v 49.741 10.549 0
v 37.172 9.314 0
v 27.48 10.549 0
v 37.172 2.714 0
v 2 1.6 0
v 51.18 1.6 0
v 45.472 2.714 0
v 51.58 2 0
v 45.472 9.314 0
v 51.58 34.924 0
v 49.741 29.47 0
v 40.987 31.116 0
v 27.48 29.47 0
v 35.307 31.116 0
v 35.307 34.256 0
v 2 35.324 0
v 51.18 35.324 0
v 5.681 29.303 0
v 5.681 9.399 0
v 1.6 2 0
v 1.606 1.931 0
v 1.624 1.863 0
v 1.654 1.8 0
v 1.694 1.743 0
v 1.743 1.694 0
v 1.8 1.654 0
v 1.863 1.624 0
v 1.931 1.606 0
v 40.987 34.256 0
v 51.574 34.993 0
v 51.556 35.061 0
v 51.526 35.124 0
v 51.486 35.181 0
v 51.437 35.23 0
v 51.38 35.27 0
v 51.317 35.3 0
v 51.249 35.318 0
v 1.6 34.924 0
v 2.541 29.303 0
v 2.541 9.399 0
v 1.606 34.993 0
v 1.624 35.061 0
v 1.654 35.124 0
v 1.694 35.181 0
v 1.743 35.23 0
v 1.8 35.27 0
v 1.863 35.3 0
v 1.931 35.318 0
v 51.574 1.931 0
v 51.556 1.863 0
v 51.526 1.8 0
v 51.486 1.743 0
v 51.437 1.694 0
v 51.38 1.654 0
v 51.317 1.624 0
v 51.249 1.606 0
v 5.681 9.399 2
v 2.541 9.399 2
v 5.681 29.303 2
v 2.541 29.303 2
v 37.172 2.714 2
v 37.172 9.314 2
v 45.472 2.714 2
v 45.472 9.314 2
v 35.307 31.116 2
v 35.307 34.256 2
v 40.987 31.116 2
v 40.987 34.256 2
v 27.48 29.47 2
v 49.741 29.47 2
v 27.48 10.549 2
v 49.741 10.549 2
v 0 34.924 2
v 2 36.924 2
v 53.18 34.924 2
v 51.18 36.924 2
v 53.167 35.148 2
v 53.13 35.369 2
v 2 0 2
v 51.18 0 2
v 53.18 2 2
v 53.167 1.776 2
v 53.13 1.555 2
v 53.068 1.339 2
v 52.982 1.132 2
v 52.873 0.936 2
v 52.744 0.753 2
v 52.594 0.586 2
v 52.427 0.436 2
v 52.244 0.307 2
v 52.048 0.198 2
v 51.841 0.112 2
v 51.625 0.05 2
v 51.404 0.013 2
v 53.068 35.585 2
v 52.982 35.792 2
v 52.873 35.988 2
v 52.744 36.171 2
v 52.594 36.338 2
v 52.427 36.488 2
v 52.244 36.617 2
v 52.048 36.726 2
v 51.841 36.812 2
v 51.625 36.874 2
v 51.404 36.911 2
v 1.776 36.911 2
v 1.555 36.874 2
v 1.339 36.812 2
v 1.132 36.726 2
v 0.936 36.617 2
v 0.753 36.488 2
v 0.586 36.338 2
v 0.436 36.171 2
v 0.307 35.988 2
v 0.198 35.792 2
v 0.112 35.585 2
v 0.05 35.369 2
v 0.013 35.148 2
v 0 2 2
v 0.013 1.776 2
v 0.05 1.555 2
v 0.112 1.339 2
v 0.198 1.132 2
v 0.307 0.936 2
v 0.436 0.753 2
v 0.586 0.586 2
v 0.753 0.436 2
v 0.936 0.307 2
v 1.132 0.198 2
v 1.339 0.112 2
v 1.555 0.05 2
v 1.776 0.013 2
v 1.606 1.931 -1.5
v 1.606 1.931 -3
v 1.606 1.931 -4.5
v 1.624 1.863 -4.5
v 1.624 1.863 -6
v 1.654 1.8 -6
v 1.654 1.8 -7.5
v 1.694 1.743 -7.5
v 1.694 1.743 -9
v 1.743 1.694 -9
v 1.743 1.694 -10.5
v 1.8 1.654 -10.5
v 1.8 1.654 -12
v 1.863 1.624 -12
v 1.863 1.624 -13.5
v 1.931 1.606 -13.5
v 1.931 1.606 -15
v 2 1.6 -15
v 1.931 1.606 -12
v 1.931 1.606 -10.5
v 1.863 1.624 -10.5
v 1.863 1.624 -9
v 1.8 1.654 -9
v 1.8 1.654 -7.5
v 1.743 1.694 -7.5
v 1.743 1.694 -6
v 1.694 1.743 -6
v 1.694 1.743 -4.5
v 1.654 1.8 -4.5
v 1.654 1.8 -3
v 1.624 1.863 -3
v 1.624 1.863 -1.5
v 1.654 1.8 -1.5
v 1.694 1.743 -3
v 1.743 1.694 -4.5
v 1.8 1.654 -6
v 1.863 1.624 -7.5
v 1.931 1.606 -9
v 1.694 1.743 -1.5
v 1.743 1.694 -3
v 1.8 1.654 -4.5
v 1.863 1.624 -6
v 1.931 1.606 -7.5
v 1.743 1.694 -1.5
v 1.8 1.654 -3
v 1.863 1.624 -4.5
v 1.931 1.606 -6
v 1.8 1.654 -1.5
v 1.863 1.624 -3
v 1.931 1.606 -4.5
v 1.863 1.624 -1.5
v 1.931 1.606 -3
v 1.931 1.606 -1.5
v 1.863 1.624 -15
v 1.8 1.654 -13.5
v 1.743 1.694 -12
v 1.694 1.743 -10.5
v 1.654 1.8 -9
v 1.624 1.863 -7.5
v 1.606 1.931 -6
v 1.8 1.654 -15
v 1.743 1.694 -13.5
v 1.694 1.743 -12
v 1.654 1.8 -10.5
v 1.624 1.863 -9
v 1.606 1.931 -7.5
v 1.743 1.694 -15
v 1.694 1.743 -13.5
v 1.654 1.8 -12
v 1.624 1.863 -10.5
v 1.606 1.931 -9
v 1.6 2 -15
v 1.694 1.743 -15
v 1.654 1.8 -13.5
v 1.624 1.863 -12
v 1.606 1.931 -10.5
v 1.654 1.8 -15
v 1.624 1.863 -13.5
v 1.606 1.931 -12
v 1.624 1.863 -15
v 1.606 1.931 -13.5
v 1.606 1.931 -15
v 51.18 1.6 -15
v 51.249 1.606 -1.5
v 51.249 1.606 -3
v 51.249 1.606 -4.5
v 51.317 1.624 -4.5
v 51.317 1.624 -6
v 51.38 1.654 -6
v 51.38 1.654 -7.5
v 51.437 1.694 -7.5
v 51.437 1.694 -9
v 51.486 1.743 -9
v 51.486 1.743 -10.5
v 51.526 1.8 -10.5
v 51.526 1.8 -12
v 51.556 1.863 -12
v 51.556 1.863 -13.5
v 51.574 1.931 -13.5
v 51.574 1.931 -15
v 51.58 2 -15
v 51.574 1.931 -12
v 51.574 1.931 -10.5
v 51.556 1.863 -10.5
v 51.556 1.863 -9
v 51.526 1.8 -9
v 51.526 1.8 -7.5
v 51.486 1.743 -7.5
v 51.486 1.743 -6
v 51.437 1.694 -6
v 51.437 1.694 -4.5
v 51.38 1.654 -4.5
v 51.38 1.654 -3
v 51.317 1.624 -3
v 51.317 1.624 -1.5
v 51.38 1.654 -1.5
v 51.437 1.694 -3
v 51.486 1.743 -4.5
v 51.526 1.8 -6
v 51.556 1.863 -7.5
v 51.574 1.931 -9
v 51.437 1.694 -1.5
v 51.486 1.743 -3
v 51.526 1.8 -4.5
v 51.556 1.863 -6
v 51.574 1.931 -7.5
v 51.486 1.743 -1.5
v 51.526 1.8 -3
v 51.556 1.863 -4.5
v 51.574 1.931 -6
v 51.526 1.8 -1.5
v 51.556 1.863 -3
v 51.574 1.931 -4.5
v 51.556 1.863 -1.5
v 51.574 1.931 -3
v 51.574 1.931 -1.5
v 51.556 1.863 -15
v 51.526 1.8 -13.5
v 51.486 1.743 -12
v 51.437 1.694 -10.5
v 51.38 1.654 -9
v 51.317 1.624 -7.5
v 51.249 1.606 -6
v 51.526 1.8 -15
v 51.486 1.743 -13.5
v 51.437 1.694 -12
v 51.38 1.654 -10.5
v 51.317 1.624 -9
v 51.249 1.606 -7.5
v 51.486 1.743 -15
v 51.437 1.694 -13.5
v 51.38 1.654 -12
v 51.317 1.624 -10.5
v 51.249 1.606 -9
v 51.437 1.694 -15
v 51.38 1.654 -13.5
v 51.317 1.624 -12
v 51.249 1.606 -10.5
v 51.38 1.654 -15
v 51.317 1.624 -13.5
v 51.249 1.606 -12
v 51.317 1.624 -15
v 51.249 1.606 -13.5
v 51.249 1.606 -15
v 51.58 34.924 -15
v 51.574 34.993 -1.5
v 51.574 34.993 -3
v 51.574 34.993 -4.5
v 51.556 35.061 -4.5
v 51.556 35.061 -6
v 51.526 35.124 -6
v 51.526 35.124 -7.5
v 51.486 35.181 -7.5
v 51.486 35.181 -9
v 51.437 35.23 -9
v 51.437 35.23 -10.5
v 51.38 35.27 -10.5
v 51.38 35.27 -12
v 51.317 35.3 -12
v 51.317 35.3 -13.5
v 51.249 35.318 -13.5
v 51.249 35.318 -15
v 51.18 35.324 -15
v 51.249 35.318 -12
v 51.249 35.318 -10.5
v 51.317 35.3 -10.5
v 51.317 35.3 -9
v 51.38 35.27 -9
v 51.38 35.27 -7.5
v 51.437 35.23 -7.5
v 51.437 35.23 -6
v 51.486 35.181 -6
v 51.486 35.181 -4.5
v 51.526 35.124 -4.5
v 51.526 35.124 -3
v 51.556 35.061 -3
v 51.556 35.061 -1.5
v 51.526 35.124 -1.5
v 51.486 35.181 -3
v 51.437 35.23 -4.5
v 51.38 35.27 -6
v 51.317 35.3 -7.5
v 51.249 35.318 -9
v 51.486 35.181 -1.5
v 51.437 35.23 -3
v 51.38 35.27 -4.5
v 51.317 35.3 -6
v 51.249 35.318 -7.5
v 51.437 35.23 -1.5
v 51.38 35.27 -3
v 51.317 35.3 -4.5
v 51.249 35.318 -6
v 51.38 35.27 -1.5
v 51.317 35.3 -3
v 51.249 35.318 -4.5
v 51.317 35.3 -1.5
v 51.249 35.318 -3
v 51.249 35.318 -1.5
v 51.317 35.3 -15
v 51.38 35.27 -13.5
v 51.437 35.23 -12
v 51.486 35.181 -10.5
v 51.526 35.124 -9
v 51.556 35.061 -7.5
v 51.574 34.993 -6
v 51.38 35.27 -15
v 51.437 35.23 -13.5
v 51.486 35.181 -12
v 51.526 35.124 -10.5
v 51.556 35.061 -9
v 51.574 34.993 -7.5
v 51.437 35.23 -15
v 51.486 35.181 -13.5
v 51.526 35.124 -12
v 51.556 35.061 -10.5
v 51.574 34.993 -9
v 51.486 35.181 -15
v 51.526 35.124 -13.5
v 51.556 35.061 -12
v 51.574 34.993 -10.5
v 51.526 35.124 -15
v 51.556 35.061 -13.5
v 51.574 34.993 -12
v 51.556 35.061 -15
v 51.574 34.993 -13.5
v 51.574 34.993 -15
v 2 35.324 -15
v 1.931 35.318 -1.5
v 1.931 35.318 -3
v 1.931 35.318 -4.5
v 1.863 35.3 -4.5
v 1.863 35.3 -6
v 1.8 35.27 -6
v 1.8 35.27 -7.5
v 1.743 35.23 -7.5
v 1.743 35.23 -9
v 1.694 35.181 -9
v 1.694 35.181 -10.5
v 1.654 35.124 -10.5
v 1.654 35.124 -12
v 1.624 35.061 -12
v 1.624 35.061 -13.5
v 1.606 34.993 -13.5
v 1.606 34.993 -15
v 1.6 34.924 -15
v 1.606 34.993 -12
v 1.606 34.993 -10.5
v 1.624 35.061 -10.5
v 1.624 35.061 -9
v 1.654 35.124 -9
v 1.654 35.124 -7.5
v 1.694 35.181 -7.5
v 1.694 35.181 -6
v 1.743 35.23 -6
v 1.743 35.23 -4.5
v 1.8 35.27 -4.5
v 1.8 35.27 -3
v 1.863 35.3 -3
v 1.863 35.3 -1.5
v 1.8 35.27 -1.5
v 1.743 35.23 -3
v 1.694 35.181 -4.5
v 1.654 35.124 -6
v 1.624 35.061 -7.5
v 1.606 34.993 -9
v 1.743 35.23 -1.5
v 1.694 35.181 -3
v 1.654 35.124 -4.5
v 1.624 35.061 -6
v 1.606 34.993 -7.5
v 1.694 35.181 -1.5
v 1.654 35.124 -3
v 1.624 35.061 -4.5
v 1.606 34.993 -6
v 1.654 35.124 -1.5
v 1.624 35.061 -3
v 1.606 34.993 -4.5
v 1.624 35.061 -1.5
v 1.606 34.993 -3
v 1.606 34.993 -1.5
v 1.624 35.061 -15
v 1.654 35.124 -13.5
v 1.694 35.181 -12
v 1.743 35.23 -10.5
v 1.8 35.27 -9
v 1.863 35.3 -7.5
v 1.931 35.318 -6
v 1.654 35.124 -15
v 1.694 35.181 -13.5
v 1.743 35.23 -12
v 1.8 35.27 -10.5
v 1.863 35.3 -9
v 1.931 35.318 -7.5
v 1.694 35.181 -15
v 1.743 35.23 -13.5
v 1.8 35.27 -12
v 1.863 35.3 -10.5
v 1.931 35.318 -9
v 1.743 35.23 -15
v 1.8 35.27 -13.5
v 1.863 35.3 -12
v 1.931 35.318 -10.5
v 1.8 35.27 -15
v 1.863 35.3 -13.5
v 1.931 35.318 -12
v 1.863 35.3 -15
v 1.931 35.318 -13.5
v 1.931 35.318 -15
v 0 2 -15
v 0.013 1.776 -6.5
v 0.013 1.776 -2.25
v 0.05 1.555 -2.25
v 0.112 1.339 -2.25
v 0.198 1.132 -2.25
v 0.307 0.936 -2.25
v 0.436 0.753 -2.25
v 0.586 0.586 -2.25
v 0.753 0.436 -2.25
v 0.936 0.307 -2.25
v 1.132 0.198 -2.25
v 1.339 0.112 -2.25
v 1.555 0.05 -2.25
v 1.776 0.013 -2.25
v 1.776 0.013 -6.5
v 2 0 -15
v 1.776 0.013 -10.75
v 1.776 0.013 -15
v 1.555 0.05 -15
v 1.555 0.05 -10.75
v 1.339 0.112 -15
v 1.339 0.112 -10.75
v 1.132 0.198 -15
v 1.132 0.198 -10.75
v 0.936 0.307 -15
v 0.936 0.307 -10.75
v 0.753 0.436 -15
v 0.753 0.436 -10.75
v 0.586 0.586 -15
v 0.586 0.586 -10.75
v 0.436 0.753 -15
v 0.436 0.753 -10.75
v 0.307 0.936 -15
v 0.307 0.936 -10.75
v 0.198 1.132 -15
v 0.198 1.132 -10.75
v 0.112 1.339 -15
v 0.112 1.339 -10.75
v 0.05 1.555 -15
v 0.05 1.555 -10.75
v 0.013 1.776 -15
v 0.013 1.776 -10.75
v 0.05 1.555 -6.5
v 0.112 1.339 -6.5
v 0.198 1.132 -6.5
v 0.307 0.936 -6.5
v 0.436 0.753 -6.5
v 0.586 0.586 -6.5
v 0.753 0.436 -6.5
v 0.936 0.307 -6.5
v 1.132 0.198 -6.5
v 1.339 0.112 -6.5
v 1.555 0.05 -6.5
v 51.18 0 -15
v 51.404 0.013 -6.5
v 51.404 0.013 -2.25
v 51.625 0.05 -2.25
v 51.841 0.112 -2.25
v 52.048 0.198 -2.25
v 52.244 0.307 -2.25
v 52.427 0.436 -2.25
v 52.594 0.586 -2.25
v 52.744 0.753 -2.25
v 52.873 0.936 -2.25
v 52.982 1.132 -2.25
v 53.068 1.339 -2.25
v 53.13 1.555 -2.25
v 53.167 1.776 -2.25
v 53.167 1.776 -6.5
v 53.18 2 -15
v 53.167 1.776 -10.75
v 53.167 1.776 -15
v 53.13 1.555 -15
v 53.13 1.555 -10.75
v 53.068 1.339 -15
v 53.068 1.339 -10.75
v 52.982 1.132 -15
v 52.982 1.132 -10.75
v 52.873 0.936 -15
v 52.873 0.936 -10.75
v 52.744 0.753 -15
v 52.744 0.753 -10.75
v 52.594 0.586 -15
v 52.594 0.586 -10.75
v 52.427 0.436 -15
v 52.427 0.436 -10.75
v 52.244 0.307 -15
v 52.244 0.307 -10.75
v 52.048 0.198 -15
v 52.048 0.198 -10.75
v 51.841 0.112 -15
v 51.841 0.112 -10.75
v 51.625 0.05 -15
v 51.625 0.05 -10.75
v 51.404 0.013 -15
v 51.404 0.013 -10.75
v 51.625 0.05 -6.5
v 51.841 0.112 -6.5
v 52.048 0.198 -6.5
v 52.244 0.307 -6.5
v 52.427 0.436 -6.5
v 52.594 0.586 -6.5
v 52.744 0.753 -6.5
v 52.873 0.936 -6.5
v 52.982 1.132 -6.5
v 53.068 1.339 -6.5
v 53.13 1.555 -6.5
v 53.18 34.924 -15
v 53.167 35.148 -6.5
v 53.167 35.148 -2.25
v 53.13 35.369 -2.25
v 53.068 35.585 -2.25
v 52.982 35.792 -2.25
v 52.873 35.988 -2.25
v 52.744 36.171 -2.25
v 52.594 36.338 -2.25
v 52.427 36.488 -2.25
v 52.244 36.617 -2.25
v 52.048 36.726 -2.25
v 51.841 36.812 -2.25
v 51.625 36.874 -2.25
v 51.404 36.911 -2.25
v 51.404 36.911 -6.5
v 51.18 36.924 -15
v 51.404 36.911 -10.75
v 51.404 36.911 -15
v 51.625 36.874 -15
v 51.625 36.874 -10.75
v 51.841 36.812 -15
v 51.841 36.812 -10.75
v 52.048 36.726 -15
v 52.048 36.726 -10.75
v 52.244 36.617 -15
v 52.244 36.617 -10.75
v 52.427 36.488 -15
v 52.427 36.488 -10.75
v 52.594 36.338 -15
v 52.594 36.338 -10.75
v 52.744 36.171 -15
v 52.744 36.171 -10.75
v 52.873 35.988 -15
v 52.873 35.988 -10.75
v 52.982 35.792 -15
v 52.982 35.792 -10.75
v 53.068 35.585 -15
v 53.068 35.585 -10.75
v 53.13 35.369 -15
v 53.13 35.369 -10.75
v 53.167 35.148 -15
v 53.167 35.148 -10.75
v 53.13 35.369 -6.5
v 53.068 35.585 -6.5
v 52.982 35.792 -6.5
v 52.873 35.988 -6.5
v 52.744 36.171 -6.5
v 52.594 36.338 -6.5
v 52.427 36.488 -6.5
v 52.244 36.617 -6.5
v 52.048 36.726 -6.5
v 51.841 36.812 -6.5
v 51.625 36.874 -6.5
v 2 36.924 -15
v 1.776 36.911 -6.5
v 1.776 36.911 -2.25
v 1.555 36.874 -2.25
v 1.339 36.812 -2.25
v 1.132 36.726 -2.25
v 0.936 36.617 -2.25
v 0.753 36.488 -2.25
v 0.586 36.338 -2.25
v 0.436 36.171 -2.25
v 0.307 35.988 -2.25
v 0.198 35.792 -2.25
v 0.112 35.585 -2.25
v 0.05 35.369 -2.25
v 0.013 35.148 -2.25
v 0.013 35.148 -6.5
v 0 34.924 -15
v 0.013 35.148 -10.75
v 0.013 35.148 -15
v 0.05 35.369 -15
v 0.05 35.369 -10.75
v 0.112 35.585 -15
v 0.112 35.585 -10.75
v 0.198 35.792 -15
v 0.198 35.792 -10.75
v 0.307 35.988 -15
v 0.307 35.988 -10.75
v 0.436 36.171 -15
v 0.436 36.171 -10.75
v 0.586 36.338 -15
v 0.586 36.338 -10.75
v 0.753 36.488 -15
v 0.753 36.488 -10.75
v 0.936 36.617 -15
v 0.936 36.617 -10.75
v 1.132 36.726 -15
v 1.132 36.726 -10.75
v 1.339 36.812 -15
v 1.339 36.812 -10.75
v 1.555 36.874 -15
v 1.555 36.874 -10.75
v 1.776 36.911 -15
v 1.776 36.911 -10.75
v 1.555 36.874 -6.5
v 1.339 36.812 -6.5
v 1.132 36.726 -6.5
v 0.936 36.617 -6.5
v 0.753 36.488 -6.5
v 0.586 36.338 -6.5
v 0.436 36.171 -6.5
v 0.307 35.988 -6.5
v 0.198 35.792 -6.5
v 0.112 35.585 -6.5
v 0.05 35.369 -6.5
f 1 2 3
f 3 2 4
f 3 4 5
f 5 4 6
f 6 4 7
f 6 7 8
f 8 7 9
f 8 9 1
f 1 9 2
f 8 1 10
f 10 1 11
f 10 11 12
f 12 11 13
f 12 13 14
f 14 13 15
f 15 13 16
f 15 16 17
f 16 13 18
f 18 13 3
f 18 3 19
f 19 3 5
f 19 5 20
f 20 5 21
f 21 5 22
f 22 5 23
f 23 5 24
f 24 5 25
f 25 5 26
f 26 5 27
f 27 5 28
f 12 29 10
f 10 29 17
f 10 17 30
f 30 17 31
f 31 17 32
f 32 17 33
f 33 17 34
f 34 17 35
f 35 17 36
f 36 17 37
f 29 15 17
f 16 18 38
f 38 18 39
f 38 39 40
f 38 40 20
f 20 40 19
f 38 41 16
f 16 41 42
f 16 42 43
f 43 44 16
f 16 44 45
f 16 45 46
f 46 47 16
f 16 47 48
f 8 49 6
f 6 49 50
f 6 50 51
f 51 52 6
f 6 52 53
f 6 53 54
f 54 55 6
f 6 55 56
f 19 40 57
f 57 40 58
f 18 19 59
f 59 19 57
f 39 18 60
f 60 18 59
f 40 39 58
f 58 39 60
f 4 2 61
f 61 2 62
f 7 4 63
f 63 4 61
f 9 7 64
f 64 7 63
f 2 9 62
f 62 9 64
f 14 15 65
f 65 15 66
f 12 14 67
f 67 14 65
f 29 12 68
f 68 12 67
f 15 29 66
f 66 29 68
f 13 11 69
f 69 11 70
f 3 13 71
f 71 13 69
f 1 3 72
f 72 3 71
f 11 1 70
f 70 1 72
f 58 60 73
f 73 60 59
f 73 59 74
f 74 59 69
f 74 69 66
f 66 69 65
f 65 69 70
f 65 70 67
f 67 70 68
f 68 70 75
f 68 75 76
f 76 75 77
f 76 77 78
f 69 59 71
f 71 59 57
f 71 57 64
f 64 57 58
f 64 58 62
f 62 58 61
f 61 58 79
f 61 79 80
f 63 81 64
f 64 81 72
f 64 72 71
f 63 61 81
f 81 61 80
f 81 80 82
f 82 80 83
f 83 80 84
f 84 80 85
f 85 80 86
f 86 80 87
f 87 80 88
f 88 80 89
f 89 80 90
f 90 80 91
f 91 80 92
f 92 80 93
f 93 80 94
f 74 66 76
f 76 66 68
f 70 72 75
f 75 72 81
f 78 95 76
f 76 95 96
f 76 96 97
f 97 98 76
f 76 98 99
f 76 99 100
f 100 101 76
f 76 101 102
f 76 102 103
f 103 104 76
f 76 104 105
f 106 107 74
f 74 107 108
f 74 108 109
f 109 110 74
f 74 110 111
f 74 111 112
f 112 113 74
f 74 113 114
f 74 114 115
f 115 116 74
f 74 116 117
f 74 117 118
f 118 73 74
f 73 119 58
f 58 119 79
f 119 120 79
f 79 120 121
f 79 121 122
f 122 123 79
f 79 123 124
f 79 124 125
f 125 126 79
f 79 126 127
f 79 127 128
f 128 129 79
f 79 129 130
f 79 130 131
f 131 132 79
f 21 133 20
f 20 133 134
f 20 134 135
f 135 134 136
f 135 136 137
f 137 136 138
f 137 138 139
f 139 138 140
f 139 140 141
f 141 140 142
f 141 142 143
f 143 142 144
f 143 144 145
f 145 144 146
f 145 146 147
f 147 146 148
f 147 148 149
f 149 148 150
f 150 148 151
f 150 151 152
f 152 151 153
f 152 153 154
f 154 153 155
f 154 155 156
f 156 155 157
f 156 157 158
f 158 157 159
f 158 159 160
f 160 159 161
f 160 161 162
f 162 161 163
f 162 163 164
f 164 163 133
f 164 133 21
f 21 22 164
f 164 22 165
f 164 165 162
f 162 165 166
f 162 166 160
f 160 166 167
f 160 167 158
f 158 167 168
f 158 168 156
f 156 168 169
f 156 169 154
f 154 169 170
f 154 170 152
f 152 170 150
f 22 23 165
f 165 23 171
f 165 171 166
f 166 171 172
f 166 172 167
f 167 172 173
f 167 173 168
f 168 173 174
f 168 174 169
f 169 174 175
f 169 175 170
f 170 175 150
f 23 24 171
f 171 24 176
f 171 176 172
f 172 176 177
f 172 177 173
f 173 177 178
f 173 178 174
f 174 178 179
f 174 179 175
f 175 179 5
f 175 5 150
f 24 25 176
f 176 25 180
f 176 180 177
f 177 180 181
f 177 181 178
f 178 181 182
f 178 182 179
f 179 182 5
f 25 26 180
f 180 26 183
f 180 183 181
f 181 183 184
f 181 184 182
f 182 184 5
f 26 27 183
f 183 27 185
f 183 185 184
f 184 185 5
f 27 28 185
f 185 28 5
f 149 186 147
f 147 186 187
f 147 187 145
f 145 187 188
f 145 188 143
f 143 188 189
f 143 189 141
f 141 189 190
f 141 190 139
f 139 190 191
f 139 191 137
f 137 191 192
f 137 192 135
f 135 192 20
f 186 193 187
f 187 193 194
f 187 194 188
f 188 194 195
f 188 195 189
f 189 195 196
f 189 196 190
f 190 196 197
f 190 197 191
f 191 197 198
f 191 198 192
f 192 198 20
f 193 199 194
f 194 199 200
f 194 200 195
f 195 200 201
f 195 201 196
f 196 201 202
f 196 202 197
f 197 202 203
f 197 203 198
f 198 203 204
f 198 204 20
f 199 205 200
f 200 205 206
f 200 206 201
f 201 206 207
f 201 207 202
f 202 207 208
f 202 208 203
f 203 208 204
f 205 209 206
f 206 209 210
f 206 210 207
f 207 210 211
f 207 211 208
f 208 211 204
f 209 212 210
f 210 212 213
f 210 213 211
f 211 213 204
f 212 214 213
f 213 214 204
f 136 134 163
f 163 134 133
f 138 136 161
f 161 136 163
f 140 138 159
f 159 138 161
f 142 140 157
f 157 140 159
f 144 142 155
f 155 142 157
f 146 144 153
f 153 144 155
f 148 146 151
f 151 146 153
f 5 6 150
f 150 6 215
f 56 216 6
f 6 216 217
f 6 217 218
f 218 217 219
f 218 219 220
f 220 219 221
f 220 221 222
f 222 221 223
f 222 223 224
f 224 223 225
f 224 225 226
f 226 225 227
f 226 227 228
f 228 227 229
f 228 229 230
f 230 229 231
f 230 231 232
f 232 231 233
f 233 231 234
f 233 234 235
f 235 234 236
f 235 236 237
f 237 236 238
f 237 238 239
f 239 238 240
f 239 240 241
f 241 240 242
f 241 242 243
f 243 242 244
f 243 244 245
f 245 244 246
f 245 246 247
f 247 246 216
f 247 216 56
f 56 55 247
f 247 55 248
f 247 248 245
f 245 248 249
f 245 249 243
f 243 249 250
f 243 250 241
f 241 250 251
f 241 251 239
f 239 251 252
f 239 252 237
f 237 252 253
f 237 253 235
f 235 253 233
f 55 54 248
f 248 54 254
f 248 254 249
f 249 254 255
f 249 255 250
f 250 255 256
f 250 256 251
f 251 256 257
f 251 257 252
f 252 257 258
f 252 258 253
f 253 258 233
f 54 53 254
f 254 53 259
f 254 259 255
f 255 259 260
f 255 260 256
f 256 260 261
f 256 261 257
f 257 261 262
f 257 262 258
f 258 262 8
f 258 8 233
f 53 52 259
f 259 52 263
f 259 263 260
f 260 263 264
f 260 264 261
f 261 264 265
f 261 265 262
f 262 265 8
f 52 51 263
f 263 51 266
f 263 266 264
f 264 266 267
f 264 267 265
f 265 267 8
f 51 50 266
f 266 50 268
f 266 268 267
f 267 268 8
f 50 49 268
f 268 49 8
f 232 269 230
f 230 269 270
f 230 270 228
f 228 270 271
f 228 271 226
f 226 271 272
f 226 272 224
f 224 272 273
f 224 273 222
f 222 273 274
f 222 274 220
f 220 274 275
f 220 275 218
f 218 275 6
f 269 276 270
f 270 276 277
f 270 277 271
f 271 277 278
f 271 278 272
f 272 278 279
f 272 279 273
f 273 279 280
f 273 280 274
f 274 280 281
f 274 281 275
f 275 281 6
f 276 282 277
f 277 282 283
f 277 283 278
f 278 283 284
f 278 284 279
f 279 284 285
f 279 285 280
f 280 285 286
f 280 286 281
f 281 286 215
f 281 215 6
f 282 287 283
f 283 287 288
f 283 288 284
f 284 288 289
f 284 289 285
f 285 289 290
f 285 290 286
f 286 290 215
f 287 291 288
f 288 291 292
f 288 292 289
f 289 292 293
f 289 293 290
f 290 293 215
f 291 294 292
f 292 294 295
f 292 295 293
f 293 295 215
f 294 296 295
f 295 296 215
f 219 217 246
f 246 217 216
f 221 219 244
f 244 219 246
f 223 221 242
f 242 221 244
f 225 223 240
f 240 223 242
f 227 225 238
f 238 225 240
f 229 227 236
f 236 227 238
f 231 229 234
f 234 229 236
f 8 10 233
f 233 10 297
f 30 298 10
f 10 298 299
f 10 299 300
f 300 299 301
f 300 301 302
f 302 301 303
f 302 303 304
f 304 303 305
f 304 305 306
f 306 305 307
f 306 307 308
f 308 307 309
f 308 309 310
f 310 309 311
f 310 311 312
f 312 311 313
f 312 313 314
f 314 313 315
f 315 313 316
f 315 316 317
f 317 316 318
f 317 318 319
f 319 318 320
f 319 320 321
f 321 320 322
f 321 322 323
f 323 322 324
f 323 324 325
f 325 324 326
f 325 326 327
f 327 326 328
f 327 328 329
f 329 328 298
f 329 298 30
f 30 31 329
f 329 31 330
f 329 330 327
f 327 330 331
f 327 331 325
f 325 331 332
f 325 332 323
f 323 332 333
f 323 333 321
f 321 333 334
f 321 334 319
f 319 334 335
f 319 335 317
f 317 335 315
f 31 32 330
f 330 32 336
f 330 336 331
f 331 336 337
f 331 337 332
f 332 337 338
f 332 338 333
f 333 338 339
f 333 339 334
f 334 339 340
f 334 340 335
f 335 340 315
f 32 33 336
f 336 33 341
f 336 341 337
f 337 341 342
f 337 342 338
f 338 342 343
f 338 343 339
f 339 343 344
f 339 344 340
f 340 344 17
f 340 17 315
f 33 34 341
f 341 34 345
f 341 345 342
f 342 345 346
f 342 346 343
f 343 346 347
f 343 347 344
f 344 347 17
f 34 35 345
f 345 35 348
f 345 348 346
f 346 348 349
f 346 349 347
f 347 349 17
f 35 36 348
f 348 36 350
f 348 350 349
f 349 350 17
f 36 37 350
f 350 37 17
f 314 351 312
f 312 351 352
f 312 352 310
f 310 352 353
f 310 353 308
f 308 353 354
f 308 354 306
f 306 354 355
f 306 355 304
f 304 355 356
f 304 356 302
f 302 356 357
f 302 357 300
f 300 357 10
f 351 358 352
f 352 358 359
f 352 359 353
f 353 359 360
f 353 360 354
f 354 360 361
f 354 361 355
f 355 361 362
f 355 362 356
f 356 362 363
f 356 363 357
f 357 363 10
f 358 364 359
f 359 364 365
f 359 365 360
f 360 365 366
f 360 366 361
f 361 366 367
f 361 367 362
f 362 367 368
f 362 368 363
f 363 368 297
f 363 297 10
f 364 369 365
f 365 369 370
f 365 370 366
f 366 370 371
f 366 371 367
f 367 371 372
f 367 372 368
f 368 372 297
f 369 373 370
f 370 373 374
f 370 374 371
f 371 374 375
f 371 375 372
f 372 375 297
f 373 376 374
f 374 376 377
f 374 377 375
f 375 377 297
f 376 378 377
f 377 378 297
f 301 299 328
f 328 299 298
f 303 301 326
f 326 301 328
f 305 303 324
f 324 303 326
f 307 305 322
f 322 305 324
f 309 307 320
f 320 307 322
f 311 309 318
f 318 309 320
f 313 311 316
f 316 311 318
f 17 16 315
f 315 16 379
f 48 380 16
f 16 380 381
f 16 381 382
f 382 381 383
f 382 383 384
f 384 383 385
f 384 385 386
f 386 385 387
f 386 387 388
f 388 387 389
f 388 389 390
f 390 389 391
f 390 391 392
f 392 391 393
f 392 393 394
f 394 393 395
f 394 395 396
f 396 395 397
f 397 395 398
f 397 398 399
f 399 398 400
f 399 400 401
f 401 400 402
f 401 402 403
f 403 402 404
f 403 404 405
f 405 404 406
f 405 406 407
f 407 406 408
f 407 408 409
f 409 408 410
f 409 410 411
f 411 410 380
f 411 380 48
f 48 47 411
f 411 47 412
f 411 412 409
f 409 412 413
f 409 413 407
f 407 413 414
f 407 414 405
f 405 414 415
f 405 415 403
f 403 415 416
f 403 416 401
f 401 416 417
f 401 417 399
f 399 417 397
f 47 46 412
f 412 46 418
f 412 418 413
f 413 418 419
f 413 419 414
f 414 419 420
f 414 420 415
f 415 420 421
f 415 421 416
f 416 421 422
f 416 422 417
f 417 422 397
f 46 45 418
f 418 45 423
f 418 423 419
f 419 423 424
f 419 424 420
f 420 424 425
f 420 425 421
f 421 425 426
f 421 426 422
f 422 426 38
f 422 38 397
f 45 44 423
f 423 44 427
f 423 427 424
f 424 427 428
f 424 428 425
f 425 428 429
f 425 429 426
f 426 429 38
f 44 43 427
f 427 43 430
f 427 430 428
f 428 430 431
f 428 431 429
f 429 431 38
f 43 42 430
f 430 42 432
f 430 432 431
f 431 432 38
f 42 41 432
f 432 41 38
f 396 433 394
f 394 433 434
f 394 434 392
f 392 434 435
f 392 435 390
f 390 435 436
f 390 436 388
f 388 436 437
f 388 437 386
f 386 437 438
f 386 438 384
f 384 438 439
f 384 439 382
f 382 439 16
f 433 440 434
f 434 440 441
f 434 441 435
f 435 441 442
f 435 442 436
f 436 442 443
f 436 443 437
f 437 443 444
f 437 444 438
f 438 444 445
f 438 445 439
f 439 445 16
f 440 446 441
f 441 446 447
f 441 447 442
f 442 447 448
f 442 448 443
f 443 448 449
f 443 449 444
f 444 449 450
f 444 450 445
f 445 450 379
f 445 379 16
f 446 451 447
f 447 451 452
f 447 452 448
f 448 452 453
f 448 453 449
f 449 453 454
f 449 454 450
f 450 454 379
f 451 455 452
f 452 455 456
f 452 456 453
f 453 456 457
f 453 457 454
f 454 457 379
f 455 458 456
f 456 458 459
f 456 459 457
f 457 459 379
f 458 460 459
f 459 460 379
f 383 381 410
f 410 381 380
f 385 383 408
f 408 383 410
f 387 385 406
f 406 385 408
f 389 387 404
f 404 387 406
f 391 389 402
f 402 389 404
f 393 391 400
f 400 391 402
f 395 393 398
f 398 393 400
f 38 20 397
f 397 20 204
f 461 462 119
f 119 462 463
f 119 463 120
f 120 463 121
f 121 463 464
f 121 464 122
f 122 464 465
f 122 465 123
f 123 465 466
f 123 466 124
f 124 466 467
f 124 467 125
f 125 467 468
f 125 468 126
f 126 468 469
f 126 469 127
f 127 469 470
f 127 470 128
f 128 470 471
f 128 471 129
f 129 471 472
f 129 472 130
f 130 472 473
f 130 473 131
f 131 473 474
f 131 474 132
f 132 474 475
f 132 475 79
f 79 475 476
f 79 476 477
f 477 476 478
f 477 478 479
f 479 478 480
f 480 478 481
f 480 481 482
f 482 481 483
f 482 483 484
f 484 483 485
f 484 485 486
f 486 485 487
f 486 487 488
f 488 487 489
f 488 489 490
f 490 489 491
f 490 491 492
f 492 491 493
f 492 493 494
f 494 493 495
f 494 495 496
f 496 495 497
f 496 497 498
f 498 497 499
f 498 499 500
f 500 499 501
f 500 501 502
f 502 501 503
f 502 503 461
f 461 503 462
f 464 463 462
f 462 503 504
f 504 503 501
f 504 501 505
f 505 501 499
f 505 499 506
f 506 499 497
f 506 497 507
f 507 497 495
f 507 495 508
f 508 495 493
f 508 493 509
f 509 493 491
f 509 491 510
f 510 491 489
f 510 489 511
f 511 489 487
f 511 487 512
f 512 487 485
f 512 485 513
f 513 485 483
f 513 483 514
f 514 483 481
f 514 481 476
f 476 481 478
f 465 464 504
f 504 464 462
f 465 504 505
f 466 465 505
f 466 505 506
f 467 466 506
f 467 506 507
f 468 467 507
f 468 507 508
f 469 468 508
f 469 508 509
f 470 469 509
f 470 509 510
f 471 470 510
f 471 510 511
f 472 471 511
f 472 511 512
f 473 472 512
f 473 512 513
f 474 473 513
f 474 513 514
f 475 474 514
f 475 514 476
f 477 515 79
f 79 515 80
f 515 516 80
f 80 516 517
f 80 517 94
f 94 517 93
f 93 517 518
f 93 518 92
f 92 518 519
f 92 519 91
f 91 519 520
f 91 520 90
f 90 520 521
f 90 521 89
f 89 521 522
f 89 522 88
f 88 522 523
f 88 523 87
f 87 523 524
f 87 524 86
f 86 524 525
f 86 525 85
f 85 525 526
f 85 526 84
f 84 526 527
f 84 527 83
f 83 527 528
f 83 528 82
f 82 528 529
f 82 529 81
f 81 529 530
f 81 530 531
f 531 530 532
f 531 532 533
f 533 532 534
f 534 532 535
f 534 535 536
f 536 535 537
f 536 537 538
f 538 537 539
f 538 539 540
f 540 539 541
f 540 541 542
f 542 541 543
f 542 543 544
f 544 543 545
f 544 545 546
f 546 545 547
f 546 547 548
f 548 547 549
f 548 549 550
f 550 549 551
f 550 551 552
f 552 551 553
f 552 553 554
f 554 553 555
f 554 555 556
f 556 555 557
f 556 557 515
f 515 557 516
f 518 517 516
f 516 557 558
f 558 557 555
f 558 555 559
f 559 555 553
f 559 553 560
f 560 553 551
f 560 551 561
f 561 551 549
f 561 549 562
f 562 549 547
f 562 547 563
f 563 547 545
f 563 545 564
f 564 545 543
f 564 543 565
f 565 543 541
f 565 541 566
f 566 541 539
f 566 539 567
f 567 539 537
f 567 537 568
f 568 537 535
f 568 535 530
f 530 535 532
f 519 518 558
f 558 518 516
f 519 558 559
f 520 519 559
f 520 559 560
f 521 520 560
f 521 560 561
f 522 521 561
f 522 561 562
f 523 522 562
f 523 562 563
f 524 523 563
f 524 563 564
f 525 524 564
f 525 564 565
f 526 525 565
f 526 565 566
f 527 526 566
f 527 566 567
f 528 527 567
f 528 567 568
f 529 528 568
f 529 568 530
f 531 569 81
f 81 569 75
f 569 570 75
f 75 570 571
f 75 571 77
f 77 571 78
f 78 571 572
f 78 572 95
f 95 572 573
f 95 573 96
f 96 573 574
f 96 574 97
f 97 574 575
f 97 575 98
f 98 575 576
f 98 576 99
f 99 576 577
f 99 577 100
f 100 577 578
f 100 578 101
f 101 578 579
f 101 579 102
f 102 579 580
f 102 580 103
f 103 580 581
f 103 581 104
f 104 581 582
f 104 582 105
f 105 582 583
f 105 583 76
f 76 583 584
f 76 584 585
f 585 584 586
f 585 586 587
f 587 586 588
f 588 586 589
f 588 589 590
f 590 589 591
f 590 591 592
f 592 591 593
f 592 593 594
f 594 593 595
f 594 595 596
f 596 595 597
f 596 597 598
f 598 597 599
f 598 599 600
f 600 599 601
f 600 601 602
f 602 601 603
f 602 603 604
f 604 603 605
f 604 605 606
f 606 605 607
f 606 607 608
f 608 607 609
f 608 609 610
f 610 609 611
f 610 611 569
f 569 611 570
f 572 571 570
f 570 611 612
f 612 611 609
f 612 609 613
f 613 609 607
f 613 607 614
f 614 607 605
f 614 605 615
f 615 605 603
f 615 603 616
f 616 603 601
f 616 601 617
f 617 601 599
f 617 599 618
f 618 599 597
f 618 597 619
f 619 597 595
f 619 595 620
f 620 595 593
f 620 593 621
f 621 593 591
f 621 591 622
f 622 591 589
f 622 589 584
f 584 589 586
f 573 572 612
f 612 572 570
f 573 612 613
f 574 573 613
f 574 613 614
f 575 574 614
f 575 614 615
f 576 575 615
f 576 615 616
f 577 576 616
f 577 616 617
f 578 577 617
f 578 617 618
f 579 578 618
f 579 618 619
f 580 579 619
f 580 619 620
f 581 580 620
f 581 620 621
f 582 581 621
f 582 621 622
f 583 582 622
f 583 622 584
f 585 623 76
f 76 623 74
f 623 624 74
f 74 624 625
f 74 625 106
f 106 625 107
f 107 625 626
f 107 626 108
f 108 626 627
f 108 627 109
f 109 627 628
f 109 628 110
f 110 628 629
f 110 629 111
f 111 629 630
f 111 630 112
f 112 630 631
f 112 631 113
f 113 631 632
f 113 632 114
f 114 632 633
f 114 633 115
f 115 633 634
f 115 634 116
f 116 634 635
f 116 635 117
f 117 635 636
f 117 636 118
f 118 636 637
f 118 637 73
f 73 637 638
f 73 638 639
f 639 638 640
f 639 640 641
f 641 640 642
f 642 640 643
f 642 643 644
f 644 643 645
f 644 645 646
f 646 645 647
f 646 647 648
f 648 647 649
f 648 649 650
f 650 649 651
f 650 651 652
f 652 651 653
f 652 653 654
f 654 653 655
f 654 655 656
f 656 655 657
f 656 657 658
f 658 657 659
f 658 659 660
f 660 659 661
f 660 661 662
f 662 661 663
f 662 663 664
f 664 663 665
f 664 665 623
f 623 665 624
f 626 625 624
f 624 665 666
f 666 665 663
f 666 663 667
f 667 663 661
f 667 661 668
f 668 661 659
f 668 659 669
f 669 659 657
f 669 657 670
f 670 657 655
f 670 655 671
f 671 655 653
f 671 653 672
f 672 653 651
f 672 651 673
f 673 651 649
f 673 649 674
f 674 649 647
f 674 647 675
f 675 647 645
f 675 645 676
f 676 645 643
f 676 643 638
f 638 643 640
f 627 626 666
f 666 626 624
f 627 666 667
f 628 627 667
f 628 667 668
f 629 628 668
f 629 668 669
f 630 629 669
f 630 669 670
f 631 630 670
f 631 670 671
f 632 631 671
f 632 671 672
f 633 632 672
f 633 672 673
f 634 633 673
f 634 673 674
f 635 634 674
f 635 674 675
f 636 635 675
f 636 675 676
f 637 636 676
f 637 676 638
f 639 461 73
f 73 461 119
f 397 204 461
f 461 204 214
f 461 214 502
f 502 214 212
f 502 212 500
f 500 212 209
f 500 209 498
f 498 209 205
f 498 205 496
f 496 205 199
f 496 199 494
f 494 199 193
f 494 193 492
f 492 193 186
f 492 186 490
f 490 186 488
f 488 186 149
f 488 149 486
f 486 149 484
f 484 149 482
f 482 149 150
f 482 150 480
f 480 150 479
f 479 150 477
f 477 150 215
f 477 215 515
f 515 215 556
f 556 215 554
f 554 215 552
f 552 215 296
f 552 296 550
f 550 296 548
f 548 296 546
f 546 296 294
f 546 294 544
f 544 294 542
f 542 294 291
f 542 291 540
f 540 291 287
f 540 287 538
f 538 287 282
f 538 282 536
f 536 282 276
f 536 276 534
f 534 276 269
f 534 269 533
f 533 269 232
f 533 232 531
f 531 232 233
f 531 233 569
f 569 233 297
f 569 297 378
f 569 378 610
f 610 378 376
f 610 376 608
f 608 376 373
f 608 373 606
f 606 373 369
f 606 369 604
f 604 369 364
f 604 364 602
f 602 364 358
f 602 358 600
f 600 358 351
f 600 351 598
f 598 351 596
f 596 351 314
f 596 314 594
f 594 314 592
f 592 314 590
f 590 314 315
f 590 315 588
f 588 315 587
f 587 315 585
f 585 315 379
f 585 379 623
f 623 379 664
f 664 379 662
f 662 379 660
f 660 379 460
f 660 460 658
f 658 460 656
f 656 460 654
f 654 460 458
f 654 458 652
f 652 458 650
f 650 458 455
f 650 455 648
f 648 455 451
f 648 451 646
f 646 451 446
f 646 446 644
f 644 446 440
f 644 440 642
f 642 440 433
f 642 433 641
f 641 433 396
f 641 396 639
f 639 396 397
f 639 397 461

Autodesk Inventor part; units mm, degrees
ref_plane "YZ Plane" through (0, 0, 0) normal (1, 0, 0) x (0, 1, 0)
ref_plane "XZ Plane" through (0, 0, 0) normal (0, 1, 0) x (-1, 0, 0)
ref_plane "XY Plane" through (0, 0, 0) normal (0, 0, 1) x (1, 0, 0)
sketch "Sketch1" plane through (0, 0, 0) normal (0, 0, 1) x (1, 0, 0)
  line L0 (2, 0) -> (51.18, 0)
  line L1 (53.18, 2) -> (53.18, 34.924)
  line L2 (51.18, 36.924) -> (2, 36.924)
  line L3 (0, 34.924) -> (0, 2)
  arc A0 (2, 36.924) -> (0, 34.924) centre (2, 34.924) ccw
  arc A1 (0, 2) -> (2, 0) centre (2, 2) ccw
  arc A2 (51.18, 0) -> (53.18, 2) centre (51.18, 2) ccw
  arc A3 (53.18, 34.924) -> (51.18, 36.924) centre (51.18, 34.924) ccw
  point P0 (0, 0)
  point P1 (53.18, 36.924)
  point P2 (53.18, 0)
  point P3 (0, 36.924)
  dimension "d0" = 36.924
  dimension "d1" = 53.18
  dimension "d2" = 2
extrude "Extrusion1" add sketch "Sketch1" along normal blind 2
sketch "Sketch2" plane through (0, 0, 2) normal (0, 0, 1) x (1, 0, 0)
  point P0 (0, 0)
sketch "Sketch3" plane through (0, 0, 2) normal (0, 0, 1) x (1, 0, 0)
  line L0 (3.9641, 27.5862) -> (4.2577, 27.5862) projected
  line L1 (4.2577, 27.5862) -> (4.2577, 27.8798) projected
  line L2 (4.2577, 27.8798) -> (3.9641, 27.8798) projected
  line L3 (3.9641, 27.8798) -> (3.9641, 27.5862) projected
  line L4 (3.9793, 10.8373) -> (4.2425, 10.8373) projected
  line L5 (4.2425, 10.8373) -> (4.2425, 11.1006) projected
  line L6 (4.2425, 11.1006) -> (3.9793, 11.1006) projected
  line L7 (3.9793, 11.1006) -> (3.9793, 10.8373) projected
  line L8 (2.5409, 9.399) -> (5.6809, 9.399)
  line L9 (5.6809, 9.399) -> (5.6809, 29.303)
  line L10 (5.6809, 29.303) -> (2.5409, 29.303)
  line L11 (2.5409, 29.303) -> (2.5409, 9.399)
  line L12 (36.7302, 32.8328) -> (36.7302, 32.5392) projected
  line L13 (36.7302, 32.5392) -> (37.0238, 32.5392) projected
  line L14 (37.0238, 32.5392) -> (37.0238, 32.8328) projected
  line L15 (37.0238, 32.8328) -> (36.7302, 32.8328) projected
  line L16 (39.2702, 32.8328) -> (39.2702, 32.5392) projected
  line L17 (39.2702, 32.5392) -> (39.5638, 32.5392) projected
  line L18 (39.5638, 32.5392) -> (39.5638, 32.8328) projected
  line L19 (39.5638, 32.8328) -> (39.2702, 32.8328) projected
  line L20 (35.307, 34.256) -> (40.987, 34.256)
  line L21 (40.987, 34.256) -> (40.987, 31.116)
  line L22 (40.987, 31.116) -> (35.307, 31.116)
  line L23 (35.307, 31.116) -> (35.307, 34.256)
  arc A0 (51.18, 0) -> (53.18, 2) centre (51.18, 2) ccw projected
  line L24 (53.18, 2) -> (53.18, 34.924) projected
  arc A1 (53.18, 34.924) -> (51.18, 36.924) centre (51.18, 34.924) ccw projected
  line L25 (51.18, 36.924) -> (2, 36.924) projected
  arc A2 (2, 36.924) -> (0, 34.924) centre (2, 34.924) ccw projected
  line L26 (0, 34.924) -> (0, 2) projected
  arc A3 (0, 2) -> (2, 0) centre (2, 2) ccw projected
  line L27 (2, 0) -> (51.18, 0) projected
  line L28 (49.341, 10.949) -> (27.8799, 10.949) construction
  line L29 (27.8799, 10.949) -> (27.8799, 21.149) construction
  line L30 (27.8799, 21.149) -> (49.341, 21.149) construction
  line L31 (49.341, 21.149) -> (49.341, 10.949) construction
  line L32 (49.741, 10.549) -> (27.4799, 10.549)
  line L33 (27.4799, 10.549) -> (27.4799, 21.549)
  line L34 (27.4799, 21.549) -> (49.741, 21.549) construction
  line L35 (49.741, 21.549) -> (49.741, 10.549)
  line L36 (49.741, 21.549) -> (27.4799, 21.549) construction
  line L37 (27.4799, 21.549) -> (27.4799, 29.0699)
  line L38 (27.4799, 29.0699) -> (49.741, 29.0699) construction
  line L39 (49.741, 29.0699) -> (49.741, 21.549)
  line L40 (27.4799, 29.0699) -> (49.741, 29.0699)
  line L41 (49.741, 29.0699) -> (49.741, 29.4699)
  line L42 (49.741, 29.4699) -> (27.4799, 29.4699)
  line L43 (27.4799, 29.4699) -> (27.4799, 29.0699)
  line L44 (37.1719, 9.3139) -> (45.4719, 9.3139)
  line L45 (45.4719, 9.3139) -> (45.4719, 2.7139)
  line L46 (45.4719, 2.7139) -> (37.1719, 2.7139)
  line L47 (37.1719, 2.7139) -> (37.1719, 9.3139)
  point P0 (0, 0)
  point P1 (3.9793, 10.969)
  point P2 (4.1109, 11.1006)
  point P3 (4.1109, 9.399)
  point P4 (4.1109, 29.303)
  point P5 (3.9641, 27.733)
  point P6 (36.877, 32.8328)
  point P7 (39.417, 32.8328)
  point P8 (39.5638, 32.686)
  point P9 (40.987, 32.686)
  point P10 (27.8799, 11.076)
  point P11 (27.883, 21.5699)
  point P12 (49.304, 29.0699)
  point P13 (49.304, 21.5699)
  point P14 (27.883, 29.0699)
  point P15 (37.5719, 8.9139)
  point P16 (45.0719, 3.1139)
  dimension "d5" = 1.57
  dimension "d6" = 1.57
  dimension "d7" = 1.57
  dimension "d8" = 1.57
  dimension "d9" = 1.57
  dimension "d10" = 1.57
  dimension "d13" = 0.4
  dimension "d14" = 0.4
  dimension "d15" = 0.4
  dimension "d16" = 0.4
  dimension "d17" = 0.4
  dimension "d18" = 0.4
  dimension "d19" = 0.4
  dimension "d20" = 0.4
  dimension "d21" = 0.4
extrude "Extrusion2" cut sketch "Sketch3" against normal through all contours L3 L2 L1 L0 | L7 L6 L5 L4 | L11 L10 L9 L8 | L15 L14 L13 L12 | L19 L18 L17 L16 | L20 L21 L22 L23 | L32 L33 L37 L40 L39 L35 | L40 L43 L42 L41 | L44 L45 L46 L47
sketch "Sketch4" plane through (0, 0, 0) normal (0, 0, -1) x (-1, 0, 0)
  arc A0 (-2, 0) -> (0, 2) centre (-2, 2) ccw projected
  line L0 (0, 2) -> (0, 34.924) projected
  line L1 (-51.18, 0) -> (-2, 0) projected
  arc A1 (-53.18, 2) -> (-51.18, 0) centre (-51.18, 2) ccw projected
  line L2 (-53.18, 34.924) -> (-53.18, 2) projected
  arc A2 (-51.18, 36.924) -> (-53.18, 34.924) centre (-51.18, 34.924) ccw projected
  line L3 (-2, 36.924) -> (-51.18, 36.924) projected
  arc A3 (0, 34.924) -> (-2, 36.924) centre (-2, 34.924) ccw projected
  point P0 (0, 0)
extrude "Extrusion3" add sketch "Sketch4" along normal blind 15 separate body
shell "Shell1" thickness 1.6 removed faces 3 at (12.9473, 16.417, 0) at (34.7867, 12.308, 0) at (34.7867, 12.308, -15) bodies 2
combine bodies "Combine1" operation type add bodies to combine 1 2
properties part number "Frame_Lid"
